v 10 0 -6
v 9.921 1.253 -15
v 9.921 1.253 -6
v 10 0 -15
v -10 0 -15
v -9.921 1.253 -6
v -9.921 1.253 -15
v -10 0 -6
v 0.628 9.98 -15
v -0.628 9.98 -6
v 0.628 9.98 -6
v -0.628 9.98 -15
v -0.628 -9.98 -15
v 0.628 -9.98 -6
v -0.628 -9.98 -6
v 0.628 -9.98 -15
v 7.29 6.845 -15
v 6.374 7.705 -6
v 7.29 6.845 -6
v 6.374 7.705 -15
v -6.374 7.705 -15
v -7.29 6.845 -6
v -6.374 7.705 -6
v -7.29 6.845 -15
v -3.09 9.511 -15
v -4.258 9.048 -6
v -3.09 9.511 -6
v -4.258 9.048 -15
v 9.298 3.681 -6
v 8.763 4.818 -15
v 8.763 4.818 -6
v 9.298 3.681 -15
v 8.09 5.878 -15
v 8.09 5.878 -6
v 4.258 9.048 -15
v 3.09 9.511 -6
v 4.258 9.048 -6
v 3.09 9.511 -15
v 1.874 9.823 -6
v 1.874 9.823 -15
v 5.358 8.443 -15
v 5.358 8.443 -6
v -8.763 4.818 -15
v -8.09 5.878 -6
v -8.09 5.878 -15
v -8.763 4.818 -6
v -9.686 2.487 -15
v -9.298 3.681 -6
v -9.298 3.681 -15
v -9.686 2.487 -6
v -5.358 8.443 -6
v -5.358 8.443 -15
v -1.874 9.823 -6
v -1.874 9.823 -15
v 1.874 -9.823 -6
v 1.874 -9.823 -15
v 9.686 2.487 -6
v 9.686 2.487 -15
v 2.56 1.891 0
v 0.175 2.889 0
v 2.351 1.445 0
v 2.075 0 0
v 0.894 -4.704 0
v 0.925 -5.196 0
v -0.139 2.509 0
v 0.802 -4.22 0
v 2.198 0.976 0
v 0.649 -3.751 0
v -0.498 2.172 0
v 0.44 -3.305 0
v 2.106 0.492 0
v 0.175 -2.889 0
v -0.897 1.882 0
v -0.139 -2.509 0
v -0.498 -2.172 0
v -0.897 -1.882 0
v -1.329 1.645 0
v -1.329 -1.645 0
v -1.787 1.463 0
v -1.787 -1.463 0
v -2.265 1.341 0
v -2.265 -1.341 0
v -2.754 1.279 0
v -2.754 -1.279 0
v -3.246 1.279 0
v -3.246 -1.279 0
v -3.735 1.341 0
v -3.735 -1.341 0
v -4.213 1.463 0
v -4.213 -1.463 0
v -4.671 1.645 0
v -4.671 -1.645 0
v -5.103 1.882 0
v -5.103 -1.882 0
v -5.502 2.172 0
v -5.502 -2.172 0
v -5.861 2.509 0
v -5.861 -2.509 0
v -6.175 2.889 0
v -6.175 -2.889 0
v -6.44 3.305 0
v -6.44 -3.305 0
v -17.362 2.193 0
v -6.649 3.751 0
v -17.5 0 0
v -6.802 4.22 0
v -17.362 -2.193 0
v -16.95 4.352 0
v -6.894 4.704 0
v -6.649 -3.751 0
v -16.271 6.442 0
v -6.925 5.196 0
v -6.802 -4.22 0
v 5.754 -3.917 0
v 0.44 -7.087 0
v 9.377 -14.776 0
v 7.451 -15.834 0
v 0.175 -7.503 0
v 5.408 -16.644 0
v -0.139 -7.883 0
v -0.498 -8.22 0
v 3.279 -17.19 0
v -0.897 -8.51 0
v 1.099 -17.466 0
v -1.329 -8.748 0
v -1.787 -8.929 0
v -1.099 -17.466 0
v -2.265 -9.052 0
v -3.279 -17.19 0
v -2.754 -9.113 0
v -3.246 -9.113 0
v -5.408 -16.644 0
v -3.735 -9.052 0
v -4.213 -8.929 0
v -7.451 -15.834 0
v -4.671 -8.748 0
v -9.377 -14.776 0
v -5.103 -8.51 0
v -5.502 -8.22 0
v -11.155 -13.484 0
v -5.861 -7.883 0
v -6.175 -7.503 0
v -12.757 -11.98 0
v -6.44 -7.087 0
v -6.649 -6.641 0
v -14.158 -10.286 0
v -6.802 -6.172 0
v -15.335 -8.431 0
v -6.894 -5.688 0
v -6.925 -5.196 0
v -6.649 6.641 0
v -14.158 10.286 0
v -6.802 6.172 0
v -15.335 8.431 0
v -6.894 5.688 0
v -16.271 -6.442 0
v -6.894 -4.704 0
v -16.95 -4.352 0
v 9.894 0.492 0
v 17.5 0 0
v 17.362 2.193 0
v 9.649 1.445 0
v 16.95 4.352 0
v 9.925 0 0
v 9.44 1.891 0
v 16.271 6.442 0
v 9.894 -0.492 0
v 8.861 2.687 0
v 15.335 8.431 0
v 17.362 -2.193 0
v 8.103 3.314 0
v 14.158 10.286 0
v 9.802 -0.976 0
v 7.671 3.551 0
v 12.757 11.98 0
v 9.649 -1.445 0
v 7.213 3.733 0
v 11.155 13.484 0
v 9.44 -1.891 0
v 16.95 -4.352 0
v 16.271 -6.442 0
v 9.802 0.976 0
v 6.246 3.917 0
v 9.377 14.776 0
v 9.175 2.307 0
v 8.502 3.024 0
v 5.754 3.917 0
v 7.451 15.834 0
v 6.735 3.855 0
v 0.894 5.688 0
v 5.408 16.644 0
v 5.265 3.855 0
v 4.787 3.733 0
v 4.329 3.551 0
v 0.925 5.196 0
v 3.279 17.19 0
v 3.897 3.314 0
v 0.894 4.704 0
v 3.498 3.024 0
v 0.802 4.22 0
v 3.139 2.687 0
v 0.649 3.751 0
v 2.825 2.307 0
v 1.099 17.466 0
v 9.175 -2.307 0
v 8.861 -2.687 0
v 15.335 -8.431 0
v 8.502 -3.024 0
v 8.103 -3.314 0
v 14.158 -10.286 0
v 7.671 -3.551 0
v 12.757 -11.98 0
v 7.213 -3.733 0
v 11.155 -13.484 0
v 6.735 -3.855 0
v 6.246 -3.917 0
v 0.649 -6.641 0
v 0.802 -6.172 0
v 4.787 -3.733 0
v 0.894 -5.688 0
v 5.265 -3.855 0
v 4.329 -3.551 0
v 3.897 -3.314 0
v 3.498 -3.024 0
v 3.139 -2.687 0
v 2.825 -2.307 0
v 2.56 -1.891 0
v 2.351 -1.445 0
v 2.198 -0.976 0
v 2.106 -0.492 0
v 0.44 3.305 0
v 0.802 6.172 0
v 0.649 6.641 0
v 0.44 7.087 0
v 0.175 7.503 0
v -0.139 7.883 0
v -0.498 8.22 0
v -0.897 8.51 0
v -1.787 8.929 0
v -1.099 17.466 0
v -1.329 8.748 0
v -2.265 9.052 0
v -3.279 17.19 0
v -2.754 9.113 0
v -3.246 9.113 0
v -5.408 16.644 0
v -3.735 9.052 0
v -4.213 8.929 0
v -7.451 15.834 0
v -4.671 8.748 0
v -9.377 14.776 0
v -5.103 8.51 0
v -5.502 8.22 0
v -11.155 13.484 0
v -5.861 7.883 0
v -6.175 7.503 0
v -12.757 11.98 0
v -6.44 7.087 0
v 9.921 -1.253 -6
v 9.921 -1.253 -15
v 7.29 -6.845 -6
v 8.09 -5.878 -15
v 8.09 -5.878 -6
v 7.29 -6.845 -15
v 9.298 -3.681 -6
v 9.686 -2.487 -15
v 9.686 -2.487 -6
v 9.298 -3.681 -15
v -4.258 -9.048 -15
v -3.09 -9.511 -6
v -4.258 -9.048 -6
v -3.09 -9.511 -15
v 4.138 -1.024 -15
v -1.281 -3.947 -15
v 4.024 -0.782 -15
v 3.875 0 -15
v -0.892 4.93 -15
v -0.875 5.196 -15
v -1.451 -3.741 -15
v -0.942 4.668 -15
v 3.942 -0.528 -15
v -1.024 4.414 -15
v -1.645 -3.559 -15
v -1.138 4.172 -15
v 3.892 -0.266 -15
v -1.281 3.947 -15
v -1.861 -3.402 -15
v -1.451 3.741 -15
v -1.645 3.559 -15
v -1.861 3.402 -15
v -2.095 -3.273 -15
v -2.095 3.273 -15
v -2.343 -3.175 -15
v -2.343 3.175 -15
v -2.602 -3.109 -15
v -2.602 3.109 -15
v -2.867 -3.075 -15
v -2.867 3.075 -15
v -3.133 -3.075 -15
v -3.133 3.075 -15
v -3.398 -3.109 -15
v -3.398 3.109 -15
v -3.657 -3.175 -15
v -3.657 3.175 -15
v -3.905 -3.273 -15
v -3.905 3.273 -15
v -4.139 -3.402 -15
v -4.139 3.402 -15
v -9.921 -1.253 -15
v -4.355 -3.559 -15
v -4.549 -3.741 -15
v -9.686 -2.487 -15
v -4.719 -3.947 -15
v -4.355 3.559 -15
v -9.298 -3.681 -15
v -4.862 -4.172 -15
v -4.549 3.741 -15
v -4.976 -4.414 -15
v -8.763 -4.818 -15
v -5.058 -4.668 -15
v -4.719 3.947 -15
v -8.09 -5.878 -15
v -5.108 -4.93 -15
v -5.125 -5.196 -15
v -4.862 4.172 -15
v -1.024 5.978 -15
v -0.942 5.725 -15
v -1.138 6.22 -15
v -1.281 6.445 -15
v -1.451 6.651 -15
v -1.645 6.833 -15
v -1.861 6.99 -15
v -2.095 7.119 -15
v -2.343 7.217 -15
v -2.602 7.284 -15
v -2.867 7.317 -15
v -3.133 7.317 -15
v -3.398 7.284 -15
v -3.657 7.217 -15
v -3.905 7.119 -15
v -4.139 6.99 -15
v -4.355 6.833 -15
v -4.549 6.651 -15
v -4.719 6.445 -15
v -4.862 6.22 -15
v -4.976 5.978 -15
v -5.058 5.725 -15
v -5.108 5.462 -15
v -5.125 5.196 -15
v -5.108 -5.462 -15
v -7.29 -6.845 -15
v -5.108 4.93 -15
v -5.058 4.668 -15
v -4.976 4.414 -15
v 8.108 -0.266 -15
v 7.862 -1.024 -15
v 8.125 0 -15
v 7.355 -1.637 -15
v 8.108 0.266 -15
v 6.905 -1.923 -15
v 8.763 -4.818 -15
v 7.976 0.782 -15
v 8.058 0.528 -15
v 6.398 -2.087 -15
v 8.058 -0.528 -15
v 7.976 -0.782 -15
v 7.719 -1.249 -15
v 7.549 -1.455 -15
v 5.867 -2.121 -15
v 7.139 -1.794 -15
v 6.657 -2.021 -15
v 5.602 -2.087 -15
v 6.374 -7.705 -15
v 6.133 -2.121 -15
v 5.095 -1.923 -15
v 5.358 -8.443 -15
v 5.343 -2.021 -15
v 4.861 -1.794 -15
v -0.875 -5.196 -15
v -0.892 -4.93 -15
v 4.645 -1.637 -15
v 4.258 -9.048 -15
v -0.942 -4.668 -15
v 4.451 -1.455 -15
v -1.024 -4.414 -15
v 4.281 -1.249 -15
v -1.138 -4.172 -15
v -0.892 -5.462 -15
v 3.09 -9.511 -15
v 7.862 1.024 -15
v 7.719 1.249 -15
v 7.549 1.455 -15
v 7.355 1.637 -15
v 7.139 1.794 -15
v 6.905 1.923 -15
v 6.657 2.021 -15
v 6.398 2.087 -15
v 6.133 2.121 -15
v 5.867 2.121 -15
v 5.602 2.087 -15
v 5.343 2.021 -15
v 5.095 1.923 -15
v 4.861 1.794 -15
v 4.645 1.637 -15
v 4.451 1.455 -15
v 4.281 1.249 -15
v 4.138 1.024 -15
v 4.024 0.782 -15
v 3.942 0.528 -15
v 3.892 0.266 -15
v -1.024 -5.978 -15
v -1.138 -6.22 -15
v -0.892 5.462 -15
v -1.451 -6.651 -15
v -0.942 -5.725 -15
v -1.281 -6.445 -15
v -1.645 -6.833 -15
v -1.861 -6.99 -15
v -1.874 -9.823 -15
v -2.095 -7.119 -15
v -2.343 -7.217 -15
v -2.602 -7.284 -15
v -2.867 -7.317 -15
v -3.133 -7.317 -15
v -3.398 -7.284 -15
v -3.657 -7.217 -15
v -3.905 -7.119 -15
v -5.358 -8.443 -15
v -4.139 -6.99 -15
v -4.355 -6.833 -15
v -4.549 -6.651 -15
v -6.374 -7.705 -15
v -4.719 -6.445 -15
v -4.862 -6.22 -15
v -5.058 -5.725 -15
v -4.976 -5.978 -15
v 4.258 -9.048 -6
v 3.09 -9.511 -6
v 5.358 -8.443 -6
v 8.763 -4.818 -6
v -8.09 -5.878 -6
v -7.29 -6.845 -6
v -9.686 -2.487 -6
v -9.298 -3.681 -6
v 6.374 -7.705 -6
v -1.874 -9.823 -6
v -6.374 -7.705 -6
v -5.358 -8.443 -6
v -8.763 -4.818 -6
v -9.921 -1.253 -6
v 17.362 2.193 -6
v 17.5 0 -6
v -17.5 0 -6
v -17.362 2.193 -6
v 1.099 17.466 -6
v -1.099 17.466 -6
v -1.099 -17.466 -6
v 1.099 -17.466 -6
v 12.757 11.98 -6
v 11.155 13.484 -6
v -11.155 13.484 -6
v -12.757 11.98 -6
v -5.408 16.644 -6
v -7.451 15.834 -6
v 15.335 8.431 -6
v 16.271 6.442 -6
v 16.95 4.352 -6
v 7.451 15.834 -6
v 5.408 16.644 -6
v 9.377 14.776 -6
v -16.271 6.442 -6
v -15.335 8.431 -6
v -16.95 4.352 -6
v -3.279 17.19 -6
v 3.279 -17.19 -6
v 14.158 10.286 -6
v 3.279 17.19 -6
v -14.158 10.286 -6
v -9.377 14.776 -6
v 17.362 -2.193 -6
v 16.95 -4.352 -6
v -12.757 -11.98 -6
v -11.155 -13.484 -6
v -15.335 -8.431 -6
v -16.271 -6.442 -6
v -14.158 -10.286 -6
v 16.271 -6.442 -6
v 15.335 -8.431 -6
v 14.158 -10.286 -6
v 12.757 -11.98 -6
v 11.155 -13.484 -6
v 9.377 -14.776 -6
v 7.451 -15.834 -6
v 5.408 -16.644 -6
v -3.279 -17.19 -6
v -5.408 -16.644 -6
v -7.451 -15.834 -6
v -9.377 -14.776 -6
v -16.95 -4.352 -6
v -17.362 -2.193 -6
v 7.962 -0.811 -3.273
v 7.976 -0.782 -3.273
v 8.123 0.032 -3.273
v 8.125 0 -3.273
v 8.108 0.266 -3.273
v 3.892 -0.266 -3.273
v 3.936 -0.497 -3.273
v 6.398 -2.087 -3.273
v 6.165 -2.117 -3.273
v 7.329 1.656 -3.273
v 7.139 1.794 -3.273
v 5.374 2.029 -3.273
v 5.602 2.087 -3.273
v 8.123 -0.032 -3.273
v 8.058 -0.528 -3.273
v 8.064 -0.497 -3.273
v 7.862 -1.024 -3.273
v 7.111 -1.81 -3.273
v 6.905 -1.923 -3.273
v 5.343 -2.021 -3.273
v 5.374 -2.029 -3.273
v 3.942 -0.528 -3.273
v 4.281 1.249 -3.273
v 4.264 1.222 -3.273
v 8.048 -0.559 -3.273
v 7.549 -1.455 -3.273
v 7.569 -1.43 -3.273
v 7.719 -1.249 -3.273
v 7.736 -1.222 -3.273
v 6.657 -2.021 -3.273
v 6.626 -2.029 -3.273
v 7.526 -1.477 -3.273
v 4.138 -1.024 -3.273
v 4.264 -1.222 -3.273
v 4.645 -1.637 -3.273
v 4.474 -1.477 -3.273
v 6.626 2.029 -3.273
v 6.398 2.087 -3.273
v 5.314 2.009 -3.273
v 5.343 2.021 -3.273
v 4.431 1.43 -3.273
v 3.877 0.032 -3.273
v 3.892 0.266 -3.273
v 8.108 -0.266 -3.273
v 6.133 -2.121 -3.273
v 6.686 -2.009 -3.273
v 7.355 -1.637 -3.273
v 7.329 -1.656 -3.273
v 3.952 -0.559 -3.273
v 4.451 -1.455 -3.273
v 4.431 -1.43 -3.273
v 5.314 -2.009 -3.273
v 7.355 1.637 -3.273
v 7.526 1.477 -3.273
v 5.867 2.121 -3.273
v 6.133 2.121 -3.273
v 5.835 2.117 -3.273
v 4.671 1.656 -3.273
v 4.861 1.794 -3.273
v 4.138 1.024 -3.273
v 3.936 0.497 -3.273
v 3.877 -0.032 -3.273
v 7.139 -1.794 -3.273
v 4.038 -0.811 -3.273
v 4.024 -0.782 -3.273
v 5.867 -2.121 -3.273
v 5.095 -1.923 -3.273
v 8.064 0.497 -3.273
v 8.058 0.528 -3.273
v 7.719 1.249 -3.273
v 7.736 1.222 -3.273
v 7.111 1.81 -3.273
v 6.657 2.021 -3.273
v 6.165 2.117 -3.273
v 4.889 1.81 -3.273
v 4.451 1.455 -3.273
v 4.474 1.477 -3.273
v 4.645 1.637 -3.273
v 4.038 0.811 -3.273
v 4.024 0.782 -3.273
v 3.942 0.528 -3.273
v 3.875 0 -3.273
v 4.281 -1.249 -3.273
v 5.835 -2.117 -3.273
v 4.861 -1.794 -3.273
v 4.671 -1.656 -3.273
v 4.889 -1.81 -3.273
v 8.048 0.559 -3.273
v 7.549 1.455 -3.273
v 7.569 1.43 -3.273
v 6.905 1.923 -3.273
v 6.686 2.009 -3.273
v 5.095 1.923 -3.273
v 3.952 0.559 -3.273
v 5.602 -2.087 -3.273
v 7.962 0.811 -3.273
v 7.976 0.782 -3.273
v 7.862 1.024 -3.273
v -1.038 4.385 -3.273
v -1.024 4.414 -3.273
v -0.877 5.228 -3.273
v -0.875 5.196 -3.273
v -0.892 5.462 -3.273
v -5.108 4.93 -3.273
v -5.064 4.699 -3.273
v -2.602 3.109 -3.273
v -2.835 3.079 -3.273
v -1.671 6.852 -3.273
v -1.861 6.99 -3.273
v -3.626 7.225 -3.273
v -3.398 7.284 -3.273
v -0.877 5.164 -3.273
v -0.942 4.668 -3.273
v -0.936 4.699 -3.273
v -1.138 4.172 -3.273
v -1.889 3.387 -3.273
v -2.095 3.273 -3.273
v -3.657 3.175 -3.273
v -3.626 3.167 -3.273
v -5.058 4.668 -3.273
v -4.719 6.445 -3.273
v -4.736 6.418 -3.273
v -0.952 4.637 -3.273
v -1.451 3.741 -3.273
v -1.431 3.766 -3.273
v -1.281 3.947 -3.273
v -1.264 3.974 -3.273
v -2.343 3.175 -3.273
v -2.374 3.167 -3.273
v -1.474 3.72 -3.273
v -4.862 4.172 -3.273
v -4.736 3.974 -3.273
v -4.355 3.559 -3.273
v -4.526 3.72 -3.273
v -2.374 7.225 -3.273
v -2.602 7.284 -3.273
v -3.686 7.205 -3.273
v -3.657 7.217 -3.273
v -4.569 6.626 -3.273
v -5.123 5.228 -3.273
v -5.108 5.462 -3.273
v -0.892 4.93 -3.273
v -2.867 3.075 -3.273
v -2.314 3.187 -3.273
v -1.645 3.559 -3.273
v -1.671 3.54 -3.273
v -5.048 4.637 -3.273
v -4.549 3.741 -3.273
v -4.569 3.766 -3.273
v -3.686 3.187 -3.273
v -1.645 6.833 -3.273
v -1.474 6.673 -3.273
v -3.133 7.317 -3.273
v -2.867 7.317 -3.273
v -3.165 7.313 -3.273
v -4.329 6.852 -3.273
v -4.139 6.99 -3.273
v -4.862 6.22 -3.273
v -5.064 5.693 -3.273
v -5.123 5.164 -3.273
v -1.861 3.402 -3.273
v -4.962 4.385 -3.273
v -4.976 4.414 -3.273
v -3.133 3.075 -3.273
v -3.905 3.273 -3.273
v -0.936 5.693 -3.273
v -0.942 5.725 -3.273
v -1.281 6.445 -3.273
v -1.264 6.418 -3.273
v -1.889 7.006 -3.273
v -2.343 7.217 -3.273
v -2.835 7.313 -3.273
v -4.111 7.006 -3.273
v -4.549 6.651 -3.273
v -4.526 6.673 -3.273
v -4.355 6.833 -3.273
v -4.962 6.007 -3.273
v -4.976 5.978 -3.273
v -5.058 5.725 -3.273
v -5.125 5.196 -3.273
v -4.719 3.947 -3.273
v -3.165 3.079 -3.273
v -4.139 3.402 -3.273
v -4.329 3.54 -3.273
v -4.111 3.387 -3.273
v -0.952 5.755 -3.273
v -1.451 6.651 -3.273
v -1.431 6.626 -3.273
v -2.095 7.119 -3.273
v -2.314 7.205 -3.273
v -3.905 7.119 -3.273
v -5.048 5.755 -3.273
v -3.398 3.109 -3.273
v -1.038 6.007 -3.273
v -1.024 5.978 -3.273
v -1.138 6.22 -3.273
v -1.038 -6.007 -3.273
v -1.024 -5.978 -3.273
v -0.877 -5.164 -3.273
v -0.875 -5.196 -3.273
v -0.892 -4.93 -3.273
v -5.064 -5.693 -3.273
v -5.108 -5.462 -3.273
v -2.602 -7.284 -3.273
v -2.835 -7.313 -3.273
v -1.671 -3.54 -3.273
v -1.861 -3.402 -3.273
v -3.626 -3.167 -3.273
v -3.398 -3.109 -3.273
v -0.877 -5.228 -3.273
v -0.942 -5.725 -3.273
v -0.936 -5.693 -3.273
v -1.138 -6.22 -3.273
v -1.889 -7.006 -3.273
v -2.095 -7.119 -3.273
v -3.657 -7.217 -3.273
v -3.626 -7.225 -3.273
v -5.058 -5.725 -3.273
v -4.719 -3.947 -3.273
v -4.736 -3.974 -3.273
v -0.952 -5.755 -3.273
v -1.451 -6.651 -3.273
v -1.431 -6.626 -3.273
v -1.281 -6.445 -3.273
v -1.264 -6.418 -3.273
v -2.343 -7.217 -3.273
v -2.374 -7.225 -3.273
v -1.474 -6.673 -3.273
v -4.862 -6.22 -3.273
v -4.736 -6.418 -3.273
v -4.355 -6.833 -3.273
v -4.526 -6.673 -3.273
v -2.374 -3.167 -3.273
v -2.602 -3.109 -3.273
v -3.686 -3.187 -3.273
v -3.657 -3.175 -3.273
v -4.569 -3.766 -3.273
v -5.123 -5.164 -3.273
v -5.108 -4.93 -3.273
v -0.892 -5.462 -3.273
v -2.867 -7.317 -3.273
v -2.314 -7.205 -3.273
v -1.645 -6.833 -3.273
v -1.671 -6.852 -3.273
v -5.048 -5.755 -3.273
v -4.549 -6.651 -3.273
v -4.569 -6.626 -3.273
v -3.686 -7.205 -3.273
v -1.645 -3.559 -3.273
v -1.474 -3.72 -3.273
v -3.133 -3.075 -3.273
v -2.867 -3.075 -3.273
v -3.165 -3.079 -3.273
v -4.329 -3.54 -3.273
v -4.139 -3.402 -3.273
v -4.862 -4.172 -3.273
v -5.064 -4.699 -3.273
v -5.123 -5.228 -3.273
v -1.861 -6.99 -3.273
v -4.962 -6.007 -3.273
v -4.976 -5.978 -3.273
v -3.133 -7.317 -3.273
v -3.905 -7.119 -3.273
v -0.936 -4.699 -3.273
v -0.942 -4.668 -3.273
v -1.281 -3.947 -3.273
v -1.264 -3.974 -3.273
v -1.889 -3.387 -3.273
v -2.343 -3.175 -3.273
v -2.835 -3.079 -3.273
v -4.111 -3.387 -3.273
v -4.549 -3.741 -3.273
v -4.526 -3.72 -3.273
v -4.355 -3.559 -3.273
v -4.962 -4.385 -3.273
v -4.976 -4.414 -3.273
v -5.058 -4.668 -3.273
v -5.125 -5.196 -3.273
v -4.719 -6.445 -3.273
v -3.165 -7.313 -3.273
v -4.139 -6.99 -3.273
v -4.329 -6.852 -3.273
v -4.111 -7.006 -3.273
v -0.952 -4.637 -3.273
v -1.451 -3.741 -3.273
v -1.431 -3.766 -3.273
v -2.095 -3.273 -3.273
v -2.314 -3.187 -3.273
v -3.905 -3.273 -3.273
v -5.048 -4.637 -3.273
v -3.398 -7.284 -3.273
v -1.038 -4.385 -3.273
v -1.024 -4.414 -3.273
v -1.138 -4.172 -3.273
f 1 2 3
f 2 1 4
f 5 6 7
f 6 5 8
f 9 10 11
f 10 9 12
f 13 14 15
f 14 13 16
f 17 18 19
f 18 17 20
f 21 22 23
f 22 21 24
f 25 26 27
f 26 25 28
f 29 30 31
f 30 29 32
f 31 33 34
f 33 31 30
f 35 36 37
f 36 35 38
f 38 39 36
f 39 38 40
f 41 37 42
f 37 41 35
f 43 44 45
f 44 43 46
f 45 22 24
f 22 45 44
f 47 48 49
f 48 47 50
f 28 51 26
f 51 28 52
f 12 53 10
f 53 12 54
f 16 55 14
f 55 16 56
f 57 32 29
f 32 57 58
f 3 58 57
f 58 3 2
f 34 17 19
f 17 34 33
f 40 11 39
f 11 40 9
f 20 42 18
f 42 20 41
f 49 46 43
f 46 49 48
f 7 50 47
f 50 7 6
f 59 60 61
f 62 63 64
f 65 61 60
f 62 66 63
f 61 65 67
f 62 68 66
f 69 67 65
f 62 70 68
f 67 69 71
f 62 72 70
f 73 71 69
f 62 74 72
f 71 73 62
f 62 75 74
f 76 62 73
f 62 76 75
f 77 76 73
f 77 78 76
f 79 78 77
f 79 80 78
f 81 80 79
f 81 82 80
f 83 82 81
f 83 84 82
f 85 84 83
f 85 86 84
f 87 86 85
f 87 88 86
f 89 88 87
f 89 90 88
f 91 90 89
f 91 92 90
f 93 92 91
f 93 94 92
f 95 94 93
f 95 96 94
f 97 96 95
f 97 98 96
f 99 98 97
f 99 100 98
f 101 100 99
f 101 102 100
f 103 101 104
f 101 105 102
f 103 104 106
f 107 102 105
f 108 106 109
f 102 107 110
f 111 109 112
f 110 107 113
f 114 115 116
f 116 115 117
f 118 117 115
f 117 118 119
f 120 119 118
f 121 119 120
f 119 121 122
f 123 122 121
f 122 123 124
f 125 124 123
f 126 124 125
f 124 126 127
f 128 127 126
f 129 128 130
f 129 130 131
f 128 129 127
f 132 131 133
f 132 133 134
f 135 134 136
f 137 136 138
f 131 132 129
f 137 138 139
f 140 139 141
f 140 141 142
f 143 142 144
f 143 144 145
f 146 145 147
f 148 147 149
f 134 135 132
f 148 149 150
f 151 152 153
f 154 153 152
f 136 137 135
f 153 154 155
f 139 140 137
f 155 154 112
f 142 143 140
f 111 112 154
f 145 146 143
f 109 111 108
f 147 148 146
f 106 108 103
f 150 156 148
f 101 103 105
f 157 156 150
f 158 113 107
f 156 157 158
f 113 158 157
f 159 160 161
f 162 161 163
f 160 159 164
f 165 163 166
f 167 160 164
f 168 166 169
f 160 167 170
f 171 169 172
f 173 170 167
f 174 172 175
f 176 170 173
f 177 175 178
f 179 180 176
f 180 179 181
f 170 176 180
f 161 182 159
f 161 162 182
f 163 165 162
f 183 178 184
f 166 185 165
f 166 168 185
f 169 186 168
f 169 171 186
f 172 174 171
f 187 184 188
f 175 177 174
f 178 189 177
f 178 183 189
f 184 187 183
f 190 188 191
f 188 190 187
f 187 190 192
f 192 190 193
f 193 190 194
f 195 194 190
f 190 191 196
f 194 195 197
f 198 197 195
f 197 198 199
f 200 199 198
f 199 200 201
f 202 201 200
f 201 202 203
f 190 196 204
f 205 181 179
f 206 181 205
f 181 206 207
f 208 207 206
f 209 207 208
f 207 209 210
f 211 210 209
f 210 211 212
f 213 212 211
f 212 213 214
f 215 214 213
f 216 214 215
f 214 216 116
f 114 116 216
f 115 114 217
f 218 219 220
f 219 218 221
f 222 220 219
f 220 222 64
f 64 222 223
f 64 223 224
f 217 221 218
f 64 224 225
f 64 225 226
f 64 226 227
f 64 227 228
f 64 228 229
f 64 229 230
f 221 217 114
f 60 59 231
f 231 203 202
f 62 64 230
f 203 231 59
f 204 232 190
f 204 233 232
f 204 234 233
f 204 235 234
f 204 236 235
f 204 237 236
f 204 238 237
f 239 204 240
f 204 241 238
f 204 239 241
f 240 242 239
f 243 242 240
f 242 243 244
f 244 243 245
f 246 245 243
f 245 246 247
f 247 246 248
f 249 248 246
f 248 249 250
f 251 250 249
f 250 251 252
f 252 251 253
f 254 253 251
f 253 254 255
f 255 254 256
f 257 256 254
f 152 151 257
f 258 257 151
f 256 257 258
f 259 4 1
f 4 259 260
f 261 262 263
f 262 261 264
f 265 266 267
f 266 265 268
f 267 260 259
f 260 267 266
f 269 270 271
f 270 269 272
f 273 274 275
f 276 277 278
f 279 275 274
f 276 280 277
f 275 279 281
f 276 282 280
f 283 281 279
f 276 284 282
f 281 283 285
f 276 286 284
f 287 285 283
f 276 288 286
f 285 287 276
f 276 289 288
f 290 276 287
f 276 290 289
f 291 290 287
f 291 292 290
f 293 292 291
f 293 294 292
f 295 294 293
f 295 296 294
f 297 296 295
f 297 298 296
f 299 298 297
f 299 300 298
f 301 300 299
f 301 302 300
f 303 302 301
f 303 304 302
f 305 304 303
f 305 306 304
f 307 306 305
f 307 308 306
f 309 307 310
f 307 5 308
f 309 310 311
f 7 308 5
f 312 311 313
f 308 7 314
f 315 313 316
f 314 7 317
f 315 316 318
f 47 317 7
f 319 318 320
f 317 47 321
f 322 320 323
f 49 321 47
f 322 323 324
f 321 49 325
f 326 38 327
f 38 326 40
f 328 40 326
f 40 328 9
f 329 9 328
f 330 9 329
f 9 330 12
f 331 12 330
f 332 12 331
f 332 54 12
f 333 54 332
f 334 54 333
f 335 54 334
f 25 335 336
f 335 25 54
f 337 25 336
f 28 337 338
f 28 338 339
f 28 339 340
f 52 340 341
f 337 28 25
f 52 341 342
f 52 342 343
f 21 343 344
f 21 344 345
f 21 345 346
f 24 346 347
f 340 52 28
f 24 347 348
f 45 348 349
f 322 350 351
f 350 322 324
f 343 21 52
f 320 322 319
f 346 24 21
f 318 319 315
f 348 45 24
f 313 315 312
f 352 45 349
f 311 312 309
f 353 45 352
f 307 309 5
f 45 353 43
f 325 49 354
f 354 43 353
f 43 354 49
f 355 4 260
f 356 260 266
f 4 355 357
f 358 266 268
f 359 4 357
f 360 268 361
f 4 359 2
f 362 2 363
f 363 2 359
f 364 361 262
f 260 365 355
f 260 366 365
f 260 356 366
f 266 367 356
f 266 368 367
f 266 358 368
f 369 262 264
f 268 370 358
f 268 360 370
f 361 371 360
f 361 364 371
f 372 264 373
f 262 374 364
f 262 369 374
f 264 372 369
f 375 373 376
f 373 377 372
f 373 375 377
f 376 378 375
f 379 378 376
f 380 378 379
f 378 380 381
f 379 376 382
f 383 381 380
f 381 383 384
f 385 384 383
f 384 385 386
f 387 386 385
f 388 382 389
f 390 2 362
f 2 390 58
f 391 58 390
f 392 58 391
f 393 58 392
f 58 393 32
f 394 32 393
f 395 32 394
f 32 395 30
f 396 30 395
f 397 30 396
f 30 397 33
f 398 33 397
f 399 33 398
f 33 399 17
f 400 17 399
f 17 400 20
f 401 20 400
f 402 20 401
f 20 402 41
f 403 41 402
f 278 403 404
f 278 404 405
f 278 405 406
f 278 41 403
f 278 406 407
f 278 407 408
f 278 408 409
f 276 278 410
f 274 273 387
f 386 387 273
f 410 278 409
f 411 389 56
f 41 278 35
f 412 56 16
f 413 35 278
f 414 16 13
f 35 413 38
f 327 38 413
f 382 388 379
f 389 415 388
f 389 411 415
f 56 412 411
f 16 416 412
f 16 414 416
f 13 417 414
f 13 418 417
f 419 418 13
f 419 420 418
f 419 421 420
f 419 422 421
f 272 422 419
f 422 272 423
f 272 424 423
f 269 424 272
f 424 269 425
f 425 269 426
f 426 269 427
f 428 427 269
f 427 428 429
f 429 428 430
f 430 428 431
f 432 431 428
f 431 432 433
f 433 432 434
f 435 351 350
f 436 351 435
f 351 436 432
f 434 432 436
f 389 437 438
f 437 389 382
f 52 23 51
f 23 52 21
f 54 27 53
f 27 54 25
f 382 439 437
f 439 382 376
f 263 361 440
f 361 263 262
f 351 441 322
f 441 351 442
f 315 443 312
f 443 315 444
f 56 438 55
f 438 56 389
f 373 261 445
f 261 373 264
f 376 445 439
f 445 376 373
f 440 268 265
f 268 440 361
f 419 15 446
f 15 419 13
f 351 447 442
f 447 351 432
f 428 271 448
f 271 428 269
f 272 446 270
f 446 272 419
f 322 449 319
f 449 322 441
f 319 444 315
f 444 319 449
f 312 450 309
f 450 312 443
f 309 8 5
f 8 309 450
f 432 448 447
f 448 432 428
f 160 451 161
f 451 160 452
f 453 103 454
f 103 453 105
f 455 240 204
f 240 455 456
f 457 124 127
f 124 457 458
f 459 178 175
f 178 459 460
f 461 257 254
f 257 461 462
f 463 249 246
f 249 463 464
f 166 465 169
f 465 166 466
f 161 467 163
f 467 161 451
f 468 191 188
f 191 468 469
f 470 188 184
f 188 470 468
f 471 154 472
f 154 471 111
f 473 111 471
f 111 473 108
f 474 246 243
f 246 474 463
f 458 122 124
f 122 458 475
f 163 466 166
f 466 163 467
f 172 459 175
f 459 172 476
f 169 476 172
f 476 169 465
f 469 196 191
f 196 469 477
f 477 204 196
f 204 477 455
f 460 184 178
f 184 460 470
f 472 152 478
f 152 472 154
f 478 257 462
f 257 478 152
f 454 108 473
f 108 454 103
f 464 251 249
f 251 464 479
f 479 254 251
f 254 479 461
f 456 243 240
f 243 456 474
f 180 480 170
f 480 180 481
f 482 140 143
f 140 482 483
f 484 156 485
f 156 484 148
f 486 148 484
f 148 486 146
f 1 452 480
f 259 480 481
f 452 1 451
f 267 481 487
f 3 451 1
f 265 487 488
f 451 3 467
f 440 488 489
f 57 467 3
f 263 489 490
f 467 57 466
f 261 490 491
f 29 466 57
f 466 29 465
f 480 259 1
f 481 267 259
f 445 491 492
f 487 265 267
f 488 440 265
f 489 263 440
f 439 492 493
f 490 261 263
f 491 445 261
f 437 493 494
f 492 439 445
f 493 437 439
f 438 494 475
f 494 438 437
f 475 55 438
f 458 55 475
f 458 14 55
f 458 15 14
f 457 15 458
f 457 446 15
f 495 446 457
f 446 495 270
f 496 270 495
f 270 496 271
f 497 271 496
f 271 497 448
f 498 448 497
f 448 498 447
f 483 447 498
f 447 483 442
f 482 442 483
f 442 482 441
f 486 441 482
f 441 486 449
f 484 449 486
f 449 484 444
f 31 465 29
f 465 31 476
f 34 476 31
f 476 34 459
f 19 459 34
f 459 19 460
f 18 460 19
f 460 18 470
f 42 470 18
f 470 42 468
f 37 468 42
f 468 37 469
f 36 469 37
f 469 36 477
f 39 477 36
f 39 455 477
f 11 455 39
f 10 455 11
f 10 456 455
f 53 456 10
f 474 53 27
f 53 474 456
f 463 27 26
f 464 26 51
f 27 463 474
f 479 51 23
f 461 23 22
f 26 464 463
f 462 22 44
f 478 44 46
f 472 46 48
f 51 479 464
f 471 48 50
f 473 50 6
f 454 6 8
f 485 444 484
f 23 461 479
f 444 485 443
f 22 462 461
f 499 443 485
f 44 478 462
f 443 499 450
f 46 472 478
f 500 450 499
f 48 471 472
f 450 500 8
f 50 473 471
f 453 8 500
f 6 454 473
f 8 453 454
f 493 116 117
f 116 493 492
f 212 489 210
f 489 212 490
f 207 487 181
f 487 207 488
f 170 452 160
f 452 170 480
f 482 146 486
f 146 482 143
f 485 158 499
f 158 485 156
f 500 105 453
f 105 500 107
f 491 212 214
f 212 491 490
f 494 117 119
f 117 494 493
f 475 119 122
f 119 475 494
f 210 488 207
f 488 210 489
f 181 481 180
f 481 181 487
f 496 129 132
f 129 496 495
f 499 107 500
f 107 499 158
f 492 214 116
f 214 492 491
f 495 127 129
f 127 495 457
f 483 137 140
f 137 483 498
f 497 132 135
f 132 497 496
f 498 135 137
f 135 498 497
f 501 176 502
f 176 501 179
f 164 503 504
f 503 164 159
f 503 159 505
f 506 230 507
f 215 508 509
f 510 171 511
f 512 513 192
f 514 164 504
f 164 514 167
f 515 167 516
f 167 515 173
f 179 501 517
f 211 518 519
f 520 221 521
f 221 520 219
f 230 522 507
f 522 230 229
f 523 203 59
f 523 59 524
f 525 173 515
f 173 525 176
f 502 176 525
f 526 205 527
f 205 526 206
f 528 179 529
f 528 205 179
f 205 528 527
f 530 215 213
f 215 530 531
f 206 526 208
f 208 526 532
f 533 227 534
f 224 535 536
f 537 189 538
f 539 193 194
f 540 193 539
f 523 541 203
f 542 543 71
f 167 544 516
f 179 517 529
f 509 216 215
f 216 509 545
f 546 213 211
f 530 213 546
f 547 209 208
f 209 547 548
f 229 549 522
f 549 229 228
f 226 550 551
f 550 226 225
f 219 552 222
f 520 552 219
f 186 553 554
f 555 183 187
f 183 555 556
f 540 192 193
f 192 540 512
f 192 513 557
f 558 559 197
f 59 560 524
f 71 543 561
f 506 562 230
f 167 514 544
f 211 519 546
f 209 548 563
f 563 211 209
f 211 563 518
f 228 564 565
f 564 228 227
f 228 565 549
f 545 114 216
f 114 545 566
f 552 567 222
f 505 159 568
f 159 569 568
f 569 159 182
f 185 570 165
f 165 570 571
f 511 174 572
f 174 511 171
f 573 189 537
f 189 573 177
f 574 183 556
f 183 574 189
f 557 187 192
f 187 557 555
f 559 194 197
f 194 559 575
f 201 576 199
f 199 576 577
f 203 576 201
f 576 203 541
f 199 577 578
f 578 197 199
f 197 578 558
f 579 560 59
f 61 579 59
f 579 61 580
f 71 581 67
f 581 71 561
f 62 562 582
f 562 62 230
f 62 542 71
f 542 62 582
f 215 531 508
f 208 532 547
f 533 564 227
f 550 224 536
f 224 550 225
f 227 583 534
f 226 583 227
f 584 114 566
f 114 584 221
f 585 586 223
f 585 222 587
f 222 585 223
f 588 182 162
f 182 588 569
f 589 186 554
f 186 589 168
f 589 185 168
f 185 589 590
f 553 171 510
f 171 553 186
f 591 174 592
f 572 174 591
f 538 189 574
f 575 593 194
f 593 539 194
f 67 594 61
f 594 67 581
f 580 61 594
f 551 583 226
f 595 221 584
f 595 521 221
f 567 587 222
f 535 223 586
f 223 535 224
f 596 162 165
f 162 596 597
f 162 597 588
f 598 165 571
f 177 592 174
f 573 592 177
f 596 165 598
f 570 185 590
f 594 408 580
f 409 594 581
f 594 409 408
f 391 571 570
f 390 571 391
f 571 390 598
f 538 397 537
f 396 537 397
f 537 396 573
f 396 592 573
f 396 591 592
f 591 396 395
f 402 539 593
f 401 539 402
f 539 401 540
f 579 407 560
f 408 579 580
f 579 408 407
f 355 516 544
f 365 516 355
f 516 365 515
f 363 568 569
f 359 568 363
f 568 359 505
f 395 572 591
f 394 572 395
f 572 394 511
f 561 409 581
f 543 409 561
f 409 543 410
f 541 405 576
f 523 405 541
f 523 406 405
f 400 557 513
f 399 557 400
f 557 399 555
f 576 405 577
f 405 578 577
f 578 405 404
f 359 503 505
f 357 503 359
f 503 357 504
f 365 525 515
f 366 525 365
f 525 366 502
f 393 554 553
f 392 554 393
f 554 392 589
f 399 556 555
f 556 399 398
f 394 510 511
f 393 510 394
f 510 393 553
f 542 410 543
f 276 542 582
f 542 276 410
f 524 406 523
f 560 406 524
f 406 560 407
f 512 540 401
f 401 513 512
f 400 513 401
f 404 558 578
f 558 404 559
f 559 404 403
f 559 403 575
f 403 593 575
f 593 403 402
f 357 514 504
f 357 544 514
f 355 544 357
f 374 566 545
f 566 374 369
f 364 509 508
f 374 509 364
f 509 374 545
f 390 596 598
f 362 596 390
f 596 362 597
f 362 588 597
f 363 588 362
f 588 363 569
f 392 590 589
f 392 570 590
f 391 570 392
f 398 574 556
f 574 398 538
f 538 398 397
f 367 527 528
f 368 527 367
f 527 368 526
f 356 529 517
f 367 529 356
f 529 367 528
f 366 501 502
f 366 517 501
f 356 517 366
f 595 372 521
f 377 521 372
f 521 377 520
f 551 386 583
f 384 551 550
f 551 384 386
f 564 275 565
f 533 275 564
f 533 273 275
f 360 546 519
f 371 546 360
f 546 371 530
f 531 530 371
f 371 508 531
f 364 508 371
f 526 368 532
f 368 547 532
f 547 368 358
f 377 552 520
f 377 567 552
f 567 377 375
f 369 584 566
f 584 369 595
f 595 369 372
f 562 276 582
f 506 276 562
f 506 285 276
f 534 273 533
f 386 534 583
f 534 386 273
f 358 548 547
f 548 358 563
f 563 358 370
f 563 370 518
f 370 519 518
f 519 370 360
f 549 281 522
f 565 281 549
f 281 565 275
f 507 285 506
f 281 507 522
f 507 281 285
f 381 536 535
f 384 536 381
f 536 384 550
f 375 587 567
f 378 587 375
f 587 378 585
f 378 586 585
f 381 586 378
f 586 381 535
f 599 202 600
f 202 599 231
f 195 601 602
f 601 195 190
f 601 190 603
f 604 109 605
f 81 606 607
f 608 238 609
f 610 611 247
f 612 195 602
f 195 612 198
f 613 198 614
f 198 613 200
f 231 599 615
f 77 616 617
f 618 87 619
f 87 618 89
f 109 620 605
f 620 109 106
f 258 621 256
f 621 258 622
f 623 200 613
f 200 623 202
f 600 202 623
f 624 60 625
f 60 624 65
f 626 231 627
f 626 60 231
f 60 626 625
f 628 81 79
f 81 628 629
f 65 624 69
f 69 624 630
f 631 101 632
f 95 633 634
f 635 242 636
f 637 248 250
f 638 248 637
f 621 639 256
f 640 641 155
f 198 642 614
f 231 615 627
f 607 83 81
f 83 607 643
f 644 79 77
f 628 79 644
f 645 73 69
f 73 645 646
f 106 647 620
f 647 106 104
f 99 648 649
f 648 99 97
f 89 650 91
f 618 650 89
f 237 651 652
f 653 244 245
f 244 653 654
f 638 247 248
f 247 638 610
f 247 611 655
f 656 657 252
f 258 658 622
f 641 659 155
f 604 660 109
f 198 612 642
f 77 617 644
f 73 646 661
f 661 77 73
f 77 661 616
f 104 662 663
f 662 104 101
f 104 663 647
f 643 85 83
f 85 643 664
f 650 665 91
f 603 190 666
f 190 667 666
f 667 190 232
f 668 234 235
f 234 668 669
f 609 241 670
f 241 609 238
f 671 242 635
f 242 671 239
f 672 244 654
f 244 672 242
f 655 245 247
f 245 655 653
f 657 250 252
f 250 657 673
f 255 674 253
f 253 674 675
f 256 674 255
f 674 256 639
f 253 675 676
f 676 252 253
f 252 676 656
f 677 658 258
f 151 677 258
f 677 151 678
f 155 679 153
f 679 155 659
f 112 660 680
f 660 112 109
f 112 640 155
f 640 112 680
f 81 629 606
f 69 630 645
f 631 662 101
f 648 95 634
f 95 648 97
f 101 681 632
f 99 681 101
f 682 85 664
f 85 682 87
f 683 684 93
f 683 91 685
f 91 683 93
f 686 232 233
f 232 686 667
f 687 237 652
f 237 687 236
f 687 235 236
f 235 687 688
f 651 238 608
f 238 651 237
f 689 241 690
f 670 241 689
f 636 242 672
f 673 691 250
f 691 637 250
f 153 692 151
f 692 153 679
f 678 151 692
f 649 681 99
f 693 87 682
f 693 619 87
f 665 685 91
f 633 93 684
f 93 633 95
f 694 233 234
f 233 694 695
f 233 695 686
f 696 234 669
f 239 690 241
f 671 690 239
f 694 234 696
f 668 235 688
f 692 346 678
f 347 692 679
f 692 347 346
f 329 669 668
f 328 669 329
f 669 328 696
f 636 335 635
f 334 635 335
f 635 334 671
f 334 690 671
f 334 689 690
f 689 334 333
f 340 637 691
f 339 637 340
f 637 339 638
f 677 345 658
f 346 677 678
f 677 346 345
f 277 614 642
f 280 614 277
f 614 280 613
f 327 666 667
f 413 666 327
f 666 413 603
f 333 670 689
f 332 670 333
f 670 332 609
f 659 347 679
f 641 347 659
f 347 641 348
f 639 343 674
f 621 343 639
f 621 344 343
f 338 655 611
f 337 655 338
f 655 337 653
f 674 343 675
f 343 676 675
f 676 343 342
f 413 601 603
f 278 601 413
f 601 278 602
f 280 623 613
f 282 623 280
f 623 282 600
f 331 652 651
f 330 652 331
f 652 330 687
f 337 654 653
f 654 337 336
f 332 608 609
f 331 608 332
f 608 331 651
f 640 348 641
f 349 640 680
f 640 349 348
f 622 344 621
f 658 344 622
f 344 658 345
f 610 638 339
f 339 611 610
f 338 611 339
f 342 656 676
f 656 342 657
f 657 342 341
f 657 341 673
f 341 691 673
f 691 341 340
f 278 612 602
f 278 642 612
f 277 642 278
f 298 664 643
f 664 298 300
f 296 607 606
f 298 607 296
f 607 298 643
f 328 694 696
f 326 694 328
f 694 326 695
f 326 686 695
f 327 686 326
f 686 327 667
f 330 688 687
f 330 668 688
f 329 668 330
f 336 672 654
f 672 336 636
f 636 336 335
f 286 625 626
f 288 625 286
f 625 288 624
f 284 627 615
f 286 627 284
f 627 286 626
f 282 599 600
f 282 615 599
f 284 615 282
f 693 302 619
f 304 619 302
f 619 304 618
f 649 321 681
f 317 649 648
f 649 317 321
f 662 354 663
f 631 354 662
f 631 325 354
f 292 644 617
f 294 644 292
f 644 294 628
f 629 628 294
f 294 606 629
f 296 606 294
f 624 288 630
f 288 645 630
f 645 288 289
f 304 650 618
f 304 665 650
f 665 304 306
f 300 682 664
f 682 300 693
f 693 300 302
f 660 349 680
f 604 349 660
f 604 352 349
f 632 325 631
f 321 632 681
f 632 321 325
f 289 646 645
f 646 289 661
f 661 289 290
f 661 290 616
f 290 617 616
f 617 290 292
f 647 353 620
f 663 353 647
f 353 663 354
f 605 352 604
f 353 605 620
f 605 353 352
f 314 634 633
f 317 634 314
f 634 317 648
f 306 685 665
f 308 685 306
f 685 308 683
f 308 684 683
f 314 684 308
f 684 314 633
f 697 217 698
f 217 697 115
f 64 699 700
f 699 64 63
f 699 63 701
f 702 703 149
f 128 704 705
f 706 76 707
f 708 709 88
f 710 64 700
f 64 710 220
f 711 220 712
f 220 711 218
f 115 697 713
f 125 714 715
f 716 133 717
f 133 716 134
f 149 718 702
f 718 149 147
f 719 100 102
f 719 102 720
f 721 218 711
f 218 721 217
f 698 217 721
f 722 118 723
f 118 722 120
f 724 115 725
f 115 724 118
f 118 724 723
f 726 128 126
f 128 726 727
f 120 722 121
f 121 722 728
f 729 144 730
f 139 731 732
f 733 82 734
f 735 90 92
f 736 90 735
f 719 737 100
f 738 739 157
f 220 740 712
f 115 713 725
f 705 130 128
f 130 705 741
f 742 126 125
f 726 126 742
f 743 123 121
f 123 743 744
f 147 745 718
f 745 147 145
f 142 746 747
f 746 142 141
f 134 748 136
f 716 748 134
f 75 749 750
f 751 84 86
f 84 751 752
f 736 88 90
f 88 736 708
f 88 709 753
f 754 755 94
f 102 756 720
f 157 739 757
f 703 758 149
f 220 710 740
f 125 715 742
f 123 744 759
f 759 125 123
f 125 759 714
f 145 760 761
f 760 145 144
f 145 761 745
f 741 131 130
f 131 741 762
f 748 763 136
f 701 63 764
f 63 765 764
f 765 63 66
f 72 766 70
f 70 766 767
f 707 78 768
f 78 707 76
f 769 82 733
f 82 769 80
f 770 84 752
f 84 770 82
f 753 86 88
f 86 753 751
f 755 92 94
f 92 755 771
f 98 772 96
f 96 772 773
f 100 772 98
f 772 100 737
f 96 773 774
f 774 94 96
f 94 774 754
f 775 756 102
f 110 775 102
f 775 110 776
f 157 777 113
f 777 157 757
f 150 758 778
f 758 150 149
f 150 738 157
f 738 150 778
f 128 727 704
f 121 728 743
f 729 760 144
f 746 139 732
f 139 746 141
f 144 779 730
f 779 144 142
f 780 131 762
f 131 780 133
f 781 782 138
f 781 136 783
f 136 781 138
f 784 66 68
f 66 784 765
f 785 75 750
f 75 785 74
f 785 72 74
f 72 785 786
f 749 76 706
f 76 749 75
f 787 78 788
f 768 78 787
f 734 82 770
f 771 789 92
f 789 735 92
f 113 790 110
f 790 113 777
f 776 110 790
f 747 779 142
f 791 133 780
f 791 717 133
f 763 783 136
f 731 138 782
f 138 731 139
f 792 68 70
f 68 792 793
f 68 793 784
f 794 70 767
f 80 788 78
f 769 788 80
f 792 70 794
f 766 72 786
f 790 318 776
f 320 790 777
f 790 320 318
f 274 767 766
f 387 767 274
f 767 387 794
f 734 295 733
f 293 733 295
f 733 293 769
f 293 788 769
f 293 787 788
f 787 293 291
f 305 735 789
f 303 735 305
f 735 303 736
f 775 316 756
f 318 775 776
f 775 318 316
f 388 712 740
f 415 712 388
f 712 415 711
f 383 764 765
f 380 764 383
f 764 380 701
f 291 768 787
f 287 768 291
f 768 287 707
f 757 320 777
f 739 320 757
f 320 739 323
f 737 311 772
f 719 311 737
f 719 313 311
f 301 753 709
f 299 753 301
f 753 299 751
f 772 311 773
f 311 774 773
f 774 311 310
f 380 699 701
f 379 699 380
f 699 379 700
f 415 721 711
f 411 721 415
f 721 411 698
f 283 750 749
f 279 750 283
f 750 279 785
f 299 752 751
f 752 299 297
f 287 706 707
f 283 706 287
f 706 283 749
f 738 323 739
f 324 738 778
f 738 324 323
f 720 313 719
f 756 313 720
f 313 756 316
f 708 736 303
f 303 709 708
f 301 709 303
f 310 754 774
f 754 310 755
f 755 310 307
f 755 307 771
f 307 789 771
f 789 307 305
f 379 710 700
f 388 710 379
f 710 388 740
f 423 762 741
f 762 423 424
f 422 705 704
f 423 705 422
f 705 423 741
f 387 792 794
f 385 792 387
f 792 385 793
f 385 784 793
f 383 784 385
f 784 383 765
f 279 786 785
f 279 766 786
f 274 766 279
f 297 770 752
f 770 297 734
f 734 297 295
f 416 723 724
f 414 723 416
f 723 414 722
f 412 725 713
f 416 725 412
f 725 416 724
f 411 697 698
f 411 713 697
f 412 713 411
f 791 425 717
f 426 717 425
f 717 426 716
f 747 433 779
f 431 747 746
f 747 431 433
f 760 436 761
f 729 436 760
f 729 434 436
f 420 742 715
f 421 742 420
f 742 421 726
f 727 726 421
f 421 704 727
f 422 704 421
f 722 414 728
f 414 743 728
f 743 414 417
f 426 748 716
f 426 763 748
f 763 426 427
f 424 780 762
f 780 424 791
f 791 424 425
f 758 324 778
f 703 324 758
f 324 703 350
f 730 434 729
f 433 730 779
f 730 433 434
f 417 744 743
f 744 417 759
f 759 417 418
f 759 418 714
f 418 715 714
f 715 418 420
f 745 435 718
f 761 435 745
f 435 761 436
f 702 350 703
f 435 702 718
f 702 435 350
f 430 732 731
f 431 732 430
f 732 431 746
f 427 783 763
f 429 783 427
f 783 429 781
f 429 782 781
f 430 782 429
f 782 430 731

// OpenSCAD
$fn = 50;


difference() {
	union() {
		translate(v = [0, 0, -15.0000000000]) {
			cylinder(h = 15, r = 10.0000000000);
		}
		translate(v = [0, 0, -6.0000000000]) {
			cylinder(h = 6, r = 17.5000000000);
		}
	}
	union() {
		translate(v = [6.0000000000, 0.0000000000, 0]) {
			rotate(a = [0, 0, 0]) {
				difference() {
					union() {
						#translate(v = [0, 0, -3.5000000000]) {
							cylinder(h = 3.5000000000, r = 10.0000000000, r1 = 2.0000000000, r2 = 3.9250000000);
						}
						#translate(v = [0, 0, -15.0000000000]) {
							cylinder(h = 15, r = 2.0000000000);
						}
						#translate(v = [0, 0, -15.0000000000]) {
							cylinder(h = 15, r = 2.1250000000);
						}
						#translate(v = [0, 0, -15.0000000000]) {
							cylinder(h = 15, r = 2.0000000000);
						}
					}
					union();
				}
			}
		}
		translate(v = [-3.0000000000, 5.1961524227, 0]) {
			rotate(a = [0, 0, 0]) {
				difference() {
					union() {
						#translate(v = [0, 0, -3.5000000000]) {
							cylinder(h = 3.5000000000, r = 10.0000000000, r1 = 2.0000000000, r2 = 3.9250000000);
						}
						#translate(v = [0, 0, -15.0000000000]) {
							cylinder(h = 15, r = 2.0000000000);
						}
						#translate(v = [0, 0, -15.0000000000]) {
							cylinder(h = 15, r = 2.1250000000);
						}
						#translate(v = [0, 0, -15.0000000000]) {
							cylinder(h = 15, r = 2.0000000000);
						}
					}
					union();
				}
			}
		}
		translate(v = [-3.0000000000, -5.1961524227, 0]) {
			rotate(a = [0, 0, 0]) {
				difference() {
					union() {
						#translate(v = [0, 0, -3.5000000000]) {
							cylinder(h = 3.5000000000, r = 10.0000000000, r1 = 2.0000000000, r2 = 3.9250000000);
						}
						#translate(v = [0, 0, -15.0000000000]) {
							cylinder(h = 15, r = 2.0000000000);
						}
						#translate(v = [0, 0, -15.0000000000]) {
							cylinder(h = 15, r = 2.1250000000);
						}
						#translate(v = [0, 0, -15.0000000000]) {
							cylinder(h = 15, r = 2.0000000000);
						}
					}
					union();
				}
			}
		}
	}
}
